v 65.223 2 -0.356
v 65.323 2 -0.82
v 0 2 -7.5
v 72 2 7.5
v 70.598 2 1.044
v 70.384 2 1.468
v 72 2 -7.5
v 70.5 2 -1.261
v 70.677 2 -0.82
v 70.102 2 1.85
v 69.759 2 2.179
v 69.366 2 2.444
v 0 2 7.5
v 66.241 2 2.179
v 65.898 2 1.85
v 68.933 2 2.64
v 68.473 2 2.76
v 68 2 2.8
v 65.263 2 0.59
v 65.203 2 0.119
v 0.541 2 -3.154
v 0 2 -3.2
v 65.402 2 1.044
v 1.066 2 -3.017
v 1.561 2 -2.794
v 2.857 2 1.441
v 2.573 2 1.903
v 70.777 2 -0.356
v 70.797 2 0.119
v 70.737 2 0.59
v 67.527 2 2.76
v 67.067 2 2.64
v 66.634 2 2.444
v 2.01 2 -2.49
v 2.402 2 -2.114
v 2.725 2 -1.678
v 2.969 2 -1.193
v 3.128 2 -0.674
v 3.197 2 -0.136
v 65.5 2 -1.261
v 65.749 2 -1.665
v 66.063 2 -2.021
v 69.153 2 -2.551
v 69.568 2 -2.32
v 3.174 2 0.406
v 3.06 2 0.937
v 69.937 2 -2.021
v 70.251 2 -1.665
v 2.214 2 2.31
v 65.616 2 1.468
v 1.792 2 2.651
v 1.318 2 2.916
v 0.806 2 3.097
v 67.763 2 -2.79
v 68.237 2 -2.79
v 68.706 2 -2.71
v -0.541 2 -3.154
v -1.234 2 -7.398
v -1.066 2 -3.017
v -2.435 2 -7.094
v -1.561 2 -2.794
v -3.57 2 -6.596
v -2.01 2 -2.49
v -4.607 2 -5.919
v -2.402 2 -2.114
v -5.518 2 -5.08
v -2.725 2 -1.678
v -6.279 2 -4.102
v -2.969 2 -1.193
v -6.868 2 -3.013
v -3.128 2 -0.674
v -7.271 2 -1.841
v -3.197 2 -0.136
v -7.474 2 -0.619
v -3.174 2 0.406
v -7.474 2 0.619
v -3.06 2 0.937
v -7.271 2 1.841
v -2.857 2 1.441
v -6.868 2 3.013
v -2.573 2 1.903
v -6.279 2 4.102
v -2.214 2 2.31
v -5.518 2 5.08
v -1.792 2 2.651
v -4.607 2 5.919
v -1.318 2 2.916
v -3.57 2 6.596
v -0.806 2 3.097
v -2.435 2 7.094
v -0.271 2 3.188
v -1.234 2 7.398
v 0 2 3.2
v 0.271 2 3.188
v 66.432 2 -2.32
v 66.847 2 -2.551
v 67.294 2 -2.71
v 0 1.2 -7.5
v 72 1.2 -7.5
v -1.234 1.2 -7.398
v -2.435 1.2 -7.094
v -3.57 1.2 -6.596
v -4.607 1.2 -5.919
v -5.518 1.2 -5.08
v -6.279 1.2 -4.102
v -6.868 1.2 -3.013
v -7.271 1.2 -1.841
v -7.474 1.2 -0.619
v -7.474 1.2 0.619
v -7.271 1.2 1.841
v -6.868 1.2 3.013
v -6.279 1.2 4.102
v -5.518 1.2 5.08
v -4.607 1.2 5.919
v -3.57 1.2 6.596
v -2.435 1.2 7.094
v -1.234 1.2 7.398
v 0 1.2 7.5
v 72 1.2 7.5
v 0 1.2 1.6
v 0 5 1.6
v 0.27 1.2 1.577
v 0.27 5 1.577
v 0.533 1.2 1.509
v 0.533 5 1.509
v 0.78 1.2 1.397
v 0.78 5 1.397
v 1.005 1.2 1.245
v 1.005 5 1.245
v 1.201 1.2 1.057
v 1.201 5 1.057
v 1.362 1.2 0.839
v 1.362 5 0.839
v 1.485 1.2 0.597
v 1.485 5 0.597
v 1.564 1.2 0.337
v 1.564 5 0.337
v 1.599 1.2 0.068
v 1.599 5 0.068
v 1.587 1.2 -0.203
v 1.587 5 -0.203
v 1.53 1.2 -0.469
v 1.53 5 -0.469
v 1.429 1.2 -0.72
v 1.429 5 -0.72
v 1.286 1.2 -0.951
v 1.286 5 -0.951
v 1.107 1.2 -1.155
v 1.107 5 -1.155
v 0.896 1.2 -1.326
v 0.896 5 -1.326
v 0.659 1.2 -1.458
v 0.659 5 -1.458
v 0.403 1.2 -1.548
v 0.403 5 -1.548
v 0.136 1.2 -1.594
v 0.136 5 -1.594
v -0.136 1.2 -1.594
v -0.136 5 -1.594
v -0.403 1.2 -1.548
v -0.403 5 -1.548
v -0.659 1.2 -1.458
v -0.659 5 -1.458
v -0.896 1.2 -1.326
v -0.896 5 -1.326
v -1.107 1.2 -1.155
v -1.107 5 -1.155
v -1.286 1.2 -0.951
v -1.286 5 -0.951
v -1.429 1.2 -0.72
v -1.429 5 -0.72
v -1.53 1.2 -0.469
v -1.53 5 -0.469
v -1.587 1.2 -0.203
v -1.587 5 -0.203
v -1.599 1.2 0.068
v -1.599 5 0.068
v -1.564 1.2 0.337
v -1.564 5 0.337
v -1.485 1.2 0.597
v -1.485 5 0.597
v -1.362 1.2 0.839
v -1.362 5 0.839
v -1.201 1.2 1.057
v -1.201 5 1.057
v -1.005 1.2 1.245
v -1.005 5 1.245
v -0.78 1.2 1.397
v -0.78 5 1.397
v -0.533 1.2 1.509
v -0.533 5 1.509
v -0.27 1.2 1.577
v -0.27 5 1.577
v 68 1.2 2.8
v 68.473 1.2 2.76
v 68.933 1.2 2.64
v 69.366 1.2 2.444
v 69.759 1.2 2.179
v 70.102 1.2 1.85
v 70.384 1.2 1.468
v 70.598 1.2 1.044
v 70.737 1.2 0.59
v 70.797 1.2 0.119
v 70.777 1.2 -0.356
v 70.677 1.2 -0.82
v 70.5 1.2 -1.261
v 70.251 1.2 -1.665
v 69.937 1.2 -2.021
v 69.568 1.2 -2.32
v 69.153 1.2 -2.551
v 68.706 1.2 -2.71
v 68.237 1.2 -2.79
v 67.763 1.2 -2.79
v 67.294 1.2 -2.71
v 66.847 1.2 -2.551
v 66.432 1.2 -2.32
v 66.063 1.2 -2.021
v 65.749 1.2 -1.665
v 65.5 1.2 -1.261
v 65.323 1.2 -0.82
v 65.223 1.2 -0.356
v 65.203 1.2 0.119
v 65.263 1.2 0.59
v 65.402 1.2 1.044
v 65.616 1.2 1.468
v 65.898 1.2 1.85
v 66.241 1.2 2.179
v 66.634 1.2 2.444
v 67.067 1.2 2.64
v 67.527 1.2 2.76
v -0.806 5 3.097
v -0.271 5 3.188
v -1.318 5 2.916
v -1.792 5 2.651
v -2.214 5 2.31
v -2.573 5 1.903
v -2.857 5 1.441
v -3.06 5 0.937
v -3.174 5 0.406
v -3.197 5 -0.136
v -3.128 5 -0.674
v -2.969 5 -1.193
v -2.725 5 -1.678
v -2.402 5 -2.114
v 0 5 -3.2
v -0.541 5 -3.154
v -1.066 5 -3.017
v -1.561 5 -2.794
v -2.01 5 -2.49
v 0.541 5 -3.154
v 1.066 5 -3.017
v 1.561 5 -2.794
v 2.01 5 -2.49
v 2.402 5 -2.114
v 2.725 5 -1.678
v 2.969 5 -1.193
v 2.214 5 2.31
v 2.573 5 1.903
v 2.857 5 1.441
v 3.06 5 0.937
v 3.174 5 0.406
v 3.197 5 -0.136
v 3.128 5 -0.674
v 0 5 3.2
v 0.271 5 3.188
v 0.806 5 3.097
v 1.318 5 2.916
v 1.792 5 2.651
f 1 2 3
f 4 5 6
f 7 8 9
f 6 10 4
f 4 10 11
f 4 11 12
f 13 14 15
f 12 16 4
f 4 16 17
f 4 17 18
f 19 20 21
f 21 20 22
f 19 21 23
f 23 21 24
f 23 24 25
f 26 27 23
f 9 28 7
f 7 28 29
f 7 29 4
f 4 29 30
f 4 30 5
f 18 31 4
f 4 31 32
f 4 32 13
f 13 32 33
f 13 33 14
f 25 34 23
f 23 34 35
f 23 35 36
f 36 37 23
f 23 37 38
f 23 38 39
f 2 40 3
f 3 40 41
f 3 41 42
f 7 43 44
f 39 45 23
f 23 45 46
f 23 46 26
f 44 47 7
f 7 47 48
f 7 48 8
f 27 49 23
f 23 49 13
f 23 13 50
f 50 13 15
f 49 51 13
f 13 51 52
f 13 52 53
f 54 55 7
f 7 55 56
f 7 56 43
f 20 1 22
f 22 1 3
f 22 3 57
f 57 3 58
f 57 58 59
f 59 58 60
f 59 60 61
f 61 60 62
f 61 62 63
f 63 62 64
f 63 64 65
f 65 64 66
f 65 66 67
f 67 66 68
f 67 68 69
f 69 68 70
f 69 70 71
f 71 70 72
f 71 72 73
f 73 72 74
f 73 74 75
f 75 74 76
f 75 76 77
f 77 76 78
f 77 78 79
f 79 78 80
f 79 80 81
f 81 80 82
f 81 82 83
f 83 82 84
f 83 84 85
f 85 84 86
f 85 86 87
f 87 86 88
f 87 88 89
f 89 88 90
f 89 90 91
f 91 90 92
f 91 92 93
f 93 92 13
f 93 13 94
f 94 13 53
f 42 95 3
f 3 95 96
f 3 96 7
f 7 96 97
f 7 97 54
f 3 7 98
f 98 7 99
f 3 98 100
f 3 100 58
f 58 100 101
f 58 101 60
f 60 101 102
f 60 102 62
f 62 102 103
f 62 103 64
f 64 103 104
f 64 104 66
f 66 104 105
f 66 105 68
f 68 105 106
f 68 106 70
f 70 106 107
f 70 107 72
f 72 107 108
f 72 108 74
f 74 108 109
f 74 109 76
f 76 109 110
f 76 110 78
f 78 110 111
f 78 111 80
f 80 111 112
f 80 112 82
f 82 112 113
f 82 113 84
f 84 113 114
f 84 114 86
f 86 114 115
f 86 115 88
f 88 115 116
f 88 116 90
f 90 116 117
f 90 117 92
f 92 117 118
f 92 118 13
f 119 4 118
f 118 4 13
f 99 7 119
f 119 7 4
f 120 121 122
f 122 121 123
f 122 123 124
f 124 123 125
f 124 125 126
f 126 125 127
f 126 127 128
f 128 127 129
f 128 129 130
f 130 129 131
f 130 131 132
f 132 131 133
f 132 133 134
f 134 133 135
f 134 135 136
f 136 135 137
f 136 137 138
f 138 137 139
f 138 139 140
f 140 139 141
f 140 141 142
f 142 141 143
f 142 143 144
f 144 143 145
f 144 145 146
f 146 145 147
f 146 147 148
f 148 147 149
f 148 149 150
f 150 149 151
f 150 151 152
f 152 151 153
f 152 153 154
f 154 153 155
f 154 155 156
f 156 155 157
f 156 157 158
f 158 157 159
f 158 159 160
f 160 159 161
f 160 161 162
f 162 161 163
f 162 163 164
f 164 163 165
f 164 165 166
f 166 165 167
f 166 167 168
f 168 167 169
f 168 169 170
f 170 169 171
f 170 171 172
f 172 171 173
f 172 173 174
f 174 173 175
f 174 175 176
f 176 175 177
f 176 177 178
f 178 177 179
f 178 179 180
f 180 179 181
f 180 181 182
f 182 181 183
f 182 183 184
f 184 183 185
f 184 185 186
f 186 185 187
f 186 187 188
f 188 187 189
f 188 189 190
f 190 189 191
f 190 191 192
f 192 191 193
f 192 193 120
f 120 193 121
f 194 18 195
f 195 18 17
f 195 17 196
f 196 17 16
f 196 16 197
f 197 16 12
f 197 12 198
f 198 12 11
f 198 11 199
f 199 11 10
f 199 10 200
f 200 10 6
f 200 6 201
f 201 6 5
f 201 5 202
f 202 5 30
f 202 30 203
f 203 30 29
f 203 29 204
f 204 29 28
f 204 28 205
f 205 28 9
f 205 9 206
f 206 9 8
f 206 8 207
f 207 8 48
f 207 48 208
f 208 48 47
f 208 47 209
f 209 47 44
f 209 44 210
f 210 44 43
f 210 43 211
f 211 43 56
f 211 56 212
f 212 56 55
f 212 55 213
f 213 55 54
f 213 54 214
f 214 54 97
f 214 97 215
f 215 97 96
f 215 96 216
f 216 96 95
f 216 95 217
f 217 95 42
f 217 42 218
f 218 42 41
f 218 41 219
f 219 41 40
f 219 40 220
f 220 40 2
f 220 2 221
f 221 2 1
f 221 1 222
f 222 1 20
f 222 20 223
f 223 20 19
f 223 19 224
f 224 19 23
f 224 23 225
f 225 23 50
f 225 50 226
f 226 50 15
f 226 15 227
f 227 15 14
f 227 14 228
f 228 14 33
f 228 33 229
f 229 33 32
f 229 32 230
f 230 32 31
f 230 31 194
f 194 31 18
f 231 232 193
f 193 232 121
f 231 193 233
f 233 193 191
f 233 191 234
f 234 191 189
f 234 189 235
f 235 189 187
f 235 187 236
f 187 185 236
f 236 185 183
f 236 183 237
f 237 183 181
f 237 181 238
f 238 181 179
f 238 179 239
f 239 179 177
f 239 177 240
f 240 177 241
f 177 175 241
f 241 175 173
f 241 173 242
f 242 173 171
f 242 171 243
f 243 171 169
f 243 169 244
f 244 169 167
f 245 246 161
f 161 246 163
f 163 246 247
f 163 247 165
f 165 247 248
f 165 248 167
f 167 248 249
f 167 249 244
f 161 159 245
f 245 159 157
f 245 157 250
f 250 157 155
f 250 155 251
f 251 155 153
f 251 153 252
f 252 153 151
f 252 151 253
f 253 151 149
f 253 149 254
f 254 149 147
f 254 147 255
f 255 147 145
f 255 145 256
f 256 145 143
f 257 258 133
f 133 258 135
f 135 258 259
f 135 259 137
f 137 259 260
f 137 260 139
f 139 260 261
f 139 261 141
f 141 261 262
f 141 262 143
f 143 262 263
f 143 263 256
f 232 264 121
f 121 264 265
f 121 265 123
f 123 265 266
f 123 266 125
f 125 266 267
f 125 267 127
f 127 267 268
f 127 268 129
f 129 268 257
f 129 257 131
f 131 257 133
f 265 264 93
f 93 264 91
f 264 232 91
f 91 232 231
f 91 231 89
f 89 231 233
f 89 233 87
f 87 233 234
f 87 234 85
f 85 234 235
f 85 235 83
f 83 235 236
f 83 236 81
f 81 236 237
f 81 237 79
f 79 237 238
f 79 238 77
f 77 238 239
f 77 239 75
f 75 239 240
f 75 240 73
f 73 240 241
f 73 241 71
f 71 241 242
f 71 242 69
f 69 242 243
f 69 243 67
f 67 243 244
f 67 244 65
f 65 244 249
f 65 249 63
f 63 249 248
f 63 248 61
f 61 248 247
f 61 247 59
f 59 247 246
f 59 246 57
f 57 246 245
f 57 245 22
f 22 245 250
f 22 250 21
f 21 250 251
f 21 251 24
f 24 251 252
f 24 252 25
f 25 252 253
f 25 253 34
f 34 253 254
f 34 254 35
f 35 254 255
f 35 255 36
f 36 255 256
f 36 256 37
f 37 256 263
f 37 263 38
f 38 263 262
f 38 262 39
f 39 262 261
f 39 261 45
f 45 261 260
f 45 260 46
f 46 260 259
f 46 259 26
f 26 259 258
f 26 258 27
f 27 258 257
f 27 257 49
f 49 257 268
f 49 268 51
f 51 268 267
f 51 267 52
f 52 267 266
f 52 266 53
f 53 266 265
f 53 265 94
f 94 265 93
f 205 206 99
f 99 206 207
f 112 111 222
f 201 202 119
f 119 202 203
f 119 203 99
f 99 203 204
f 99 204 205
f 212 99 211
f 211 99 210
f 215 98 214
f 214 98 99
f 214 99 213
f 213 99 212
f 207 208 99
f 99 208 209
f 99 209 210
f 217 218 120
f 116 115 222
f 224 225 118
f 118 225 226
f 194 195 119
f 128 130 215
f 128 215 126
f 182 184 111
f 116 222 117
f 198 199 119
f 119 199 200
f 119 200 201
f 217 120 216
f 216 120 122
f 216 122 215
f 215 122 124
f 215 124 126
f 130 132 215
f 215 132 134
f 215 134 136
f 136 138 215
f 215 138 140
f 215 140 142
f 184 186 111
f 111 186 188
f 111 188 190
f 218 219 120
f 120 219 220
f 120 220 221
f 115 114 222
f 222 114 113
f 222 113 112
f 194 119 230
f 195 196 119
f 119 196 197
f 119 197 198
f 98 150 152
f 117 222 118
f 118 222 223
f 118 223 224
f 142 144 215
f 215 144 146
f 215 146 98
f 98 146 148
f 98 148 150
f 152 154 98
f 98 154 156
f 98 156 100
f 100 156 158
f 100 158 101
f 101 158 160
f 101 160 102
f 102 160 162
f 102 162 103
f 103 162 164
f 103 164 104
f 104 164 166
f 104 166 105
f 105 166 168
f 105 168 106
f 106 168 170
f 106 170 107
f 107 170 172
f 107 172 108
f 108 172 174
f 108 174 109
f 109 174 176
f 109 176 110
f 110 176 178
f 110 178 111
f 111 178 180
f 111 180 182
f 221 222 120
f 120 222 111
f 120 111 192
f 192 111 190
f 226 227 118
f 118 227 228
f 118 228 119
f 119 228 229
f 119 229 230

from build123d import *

# Parameters (mm, degrees)
BOSS_EXTRUDE1_DEPTH = 2
SKETCH2_R           = 1.6
CUT_EXTRUDE1_DEPTH  = 1.8
SKETCH3_R           = 0.8
CUT_EXTRUDE2_DEPTH  = 3
SKETCH4_R           = 2.8
CUT_EXTRUDE3_DEPTH  = 1.4
SKETCH5_R           = 3.2
SKETCH5_R_2         = 1.6
BOSS_EXTRUDE2_DEPTH = 3
SKETCH6_W           = 80.029728654
SKETCH6_H           = 15
CUT_EXTRUDE4_DEPTH  = 1.2


with BuildPart() as part:
    # Sketch1 → Boss-Extrude1 (new body)
    with BuildSketch(Plane(origin=(0, 0, 0), x_dir=(1, 0, 0), z_dir=(0, 1, 0))):
        with BuildLine():
            ThreePointArc((7.5, 0), (5.303300859, -5.303300859), (0, -7.5))
            Line((0, -7.5), (72, -7.5))
            Line((72, -7.5), (72, 7.5))
            Line((72, 7.5), (0, 7.5))
            ThreePointArc((0, 7.5), (5.303300859, 5.303300859), (7.5, 0))
        make_face()
        with BuildLine():
            ThreePointArc((0, 7.5), (-7.5, 0), (0, -7.5))
            Line((0, -7.5), (0, 7.5))
        make_face()
        with BuildLine():
            Line((0, 7.5), (0, -7.5))
            ThreePointArc((0, -7.5), (5.303300859, -5.303300859), (7.5, 0))
            ThreePointArc((7.5, 0), (5.303300859, 5.303300859), (0, 7.5))
        make_face()
    extrude(amount=BOSS_EXTRUDE1_DEPTH)

    # Sketch2 → Cut-Extrude1 (cut)
    with BuildSketch(Plane(origin=(0, 2, 0), x_dir=(1, 0, 0), z_dir=(0, 1, 0))):
        Circle(SKETCH2_R)
    extrude(amount=-CUT_EXTRUDE1_DEPTH, mode=Mode.SUBTRACT)

    # Sketch3 → Cut-Extrude2 (cut)
    with BuildSketch(Plane(origin=(0, 0.2, 0), x_dir=(1, 0, 0), z_dir=(0, 1, 0))):
        Circle(SKETCH3_R)
    extrude(amount=-CUT_EXTRUDE2_DEPTH, mode=Mode.SUBTRACT)

    # Sketch4 → Cut-Extrude3 (cut)
    with BuildSketch(Plane(origin=(0, 2, 0), x_dir=(1, 0, 0), z_dir=(0, 1, 0))):
        with Locations((68, 0)):
            Circle(SKETCH4_R)
    extrude(amount=-CUT_EXTRUDE3_DEPTH, mode=Mode.SUBTRACT)

    # Sketch5 → Boss-Extrude2 (add)
    with BuildSketch(Plane(origin=(0, 2, 0), x_dir=(1, 0, 0), z_dir=(0, 1, 0))):
        Circle(SKETCH5_R)
        Circle(SKETCH5_R_2, mode=Mode.SUBTRACT)
    extrude(amount=BOSS_EXTRUDE2_DEPTH)

    # Sketch6 → Cut-Extrude4 (cut)
    with BuildSketch(Plane.XZ):
        with Locations((31.985135673, 0)):
            Rectangle(SKETCH6_W, SKETCH6_H)
    extrude(amount=-CUT_EXTRUDE4_DEPTH, mode=Mode.SUBTRACT)


solid = part.part
